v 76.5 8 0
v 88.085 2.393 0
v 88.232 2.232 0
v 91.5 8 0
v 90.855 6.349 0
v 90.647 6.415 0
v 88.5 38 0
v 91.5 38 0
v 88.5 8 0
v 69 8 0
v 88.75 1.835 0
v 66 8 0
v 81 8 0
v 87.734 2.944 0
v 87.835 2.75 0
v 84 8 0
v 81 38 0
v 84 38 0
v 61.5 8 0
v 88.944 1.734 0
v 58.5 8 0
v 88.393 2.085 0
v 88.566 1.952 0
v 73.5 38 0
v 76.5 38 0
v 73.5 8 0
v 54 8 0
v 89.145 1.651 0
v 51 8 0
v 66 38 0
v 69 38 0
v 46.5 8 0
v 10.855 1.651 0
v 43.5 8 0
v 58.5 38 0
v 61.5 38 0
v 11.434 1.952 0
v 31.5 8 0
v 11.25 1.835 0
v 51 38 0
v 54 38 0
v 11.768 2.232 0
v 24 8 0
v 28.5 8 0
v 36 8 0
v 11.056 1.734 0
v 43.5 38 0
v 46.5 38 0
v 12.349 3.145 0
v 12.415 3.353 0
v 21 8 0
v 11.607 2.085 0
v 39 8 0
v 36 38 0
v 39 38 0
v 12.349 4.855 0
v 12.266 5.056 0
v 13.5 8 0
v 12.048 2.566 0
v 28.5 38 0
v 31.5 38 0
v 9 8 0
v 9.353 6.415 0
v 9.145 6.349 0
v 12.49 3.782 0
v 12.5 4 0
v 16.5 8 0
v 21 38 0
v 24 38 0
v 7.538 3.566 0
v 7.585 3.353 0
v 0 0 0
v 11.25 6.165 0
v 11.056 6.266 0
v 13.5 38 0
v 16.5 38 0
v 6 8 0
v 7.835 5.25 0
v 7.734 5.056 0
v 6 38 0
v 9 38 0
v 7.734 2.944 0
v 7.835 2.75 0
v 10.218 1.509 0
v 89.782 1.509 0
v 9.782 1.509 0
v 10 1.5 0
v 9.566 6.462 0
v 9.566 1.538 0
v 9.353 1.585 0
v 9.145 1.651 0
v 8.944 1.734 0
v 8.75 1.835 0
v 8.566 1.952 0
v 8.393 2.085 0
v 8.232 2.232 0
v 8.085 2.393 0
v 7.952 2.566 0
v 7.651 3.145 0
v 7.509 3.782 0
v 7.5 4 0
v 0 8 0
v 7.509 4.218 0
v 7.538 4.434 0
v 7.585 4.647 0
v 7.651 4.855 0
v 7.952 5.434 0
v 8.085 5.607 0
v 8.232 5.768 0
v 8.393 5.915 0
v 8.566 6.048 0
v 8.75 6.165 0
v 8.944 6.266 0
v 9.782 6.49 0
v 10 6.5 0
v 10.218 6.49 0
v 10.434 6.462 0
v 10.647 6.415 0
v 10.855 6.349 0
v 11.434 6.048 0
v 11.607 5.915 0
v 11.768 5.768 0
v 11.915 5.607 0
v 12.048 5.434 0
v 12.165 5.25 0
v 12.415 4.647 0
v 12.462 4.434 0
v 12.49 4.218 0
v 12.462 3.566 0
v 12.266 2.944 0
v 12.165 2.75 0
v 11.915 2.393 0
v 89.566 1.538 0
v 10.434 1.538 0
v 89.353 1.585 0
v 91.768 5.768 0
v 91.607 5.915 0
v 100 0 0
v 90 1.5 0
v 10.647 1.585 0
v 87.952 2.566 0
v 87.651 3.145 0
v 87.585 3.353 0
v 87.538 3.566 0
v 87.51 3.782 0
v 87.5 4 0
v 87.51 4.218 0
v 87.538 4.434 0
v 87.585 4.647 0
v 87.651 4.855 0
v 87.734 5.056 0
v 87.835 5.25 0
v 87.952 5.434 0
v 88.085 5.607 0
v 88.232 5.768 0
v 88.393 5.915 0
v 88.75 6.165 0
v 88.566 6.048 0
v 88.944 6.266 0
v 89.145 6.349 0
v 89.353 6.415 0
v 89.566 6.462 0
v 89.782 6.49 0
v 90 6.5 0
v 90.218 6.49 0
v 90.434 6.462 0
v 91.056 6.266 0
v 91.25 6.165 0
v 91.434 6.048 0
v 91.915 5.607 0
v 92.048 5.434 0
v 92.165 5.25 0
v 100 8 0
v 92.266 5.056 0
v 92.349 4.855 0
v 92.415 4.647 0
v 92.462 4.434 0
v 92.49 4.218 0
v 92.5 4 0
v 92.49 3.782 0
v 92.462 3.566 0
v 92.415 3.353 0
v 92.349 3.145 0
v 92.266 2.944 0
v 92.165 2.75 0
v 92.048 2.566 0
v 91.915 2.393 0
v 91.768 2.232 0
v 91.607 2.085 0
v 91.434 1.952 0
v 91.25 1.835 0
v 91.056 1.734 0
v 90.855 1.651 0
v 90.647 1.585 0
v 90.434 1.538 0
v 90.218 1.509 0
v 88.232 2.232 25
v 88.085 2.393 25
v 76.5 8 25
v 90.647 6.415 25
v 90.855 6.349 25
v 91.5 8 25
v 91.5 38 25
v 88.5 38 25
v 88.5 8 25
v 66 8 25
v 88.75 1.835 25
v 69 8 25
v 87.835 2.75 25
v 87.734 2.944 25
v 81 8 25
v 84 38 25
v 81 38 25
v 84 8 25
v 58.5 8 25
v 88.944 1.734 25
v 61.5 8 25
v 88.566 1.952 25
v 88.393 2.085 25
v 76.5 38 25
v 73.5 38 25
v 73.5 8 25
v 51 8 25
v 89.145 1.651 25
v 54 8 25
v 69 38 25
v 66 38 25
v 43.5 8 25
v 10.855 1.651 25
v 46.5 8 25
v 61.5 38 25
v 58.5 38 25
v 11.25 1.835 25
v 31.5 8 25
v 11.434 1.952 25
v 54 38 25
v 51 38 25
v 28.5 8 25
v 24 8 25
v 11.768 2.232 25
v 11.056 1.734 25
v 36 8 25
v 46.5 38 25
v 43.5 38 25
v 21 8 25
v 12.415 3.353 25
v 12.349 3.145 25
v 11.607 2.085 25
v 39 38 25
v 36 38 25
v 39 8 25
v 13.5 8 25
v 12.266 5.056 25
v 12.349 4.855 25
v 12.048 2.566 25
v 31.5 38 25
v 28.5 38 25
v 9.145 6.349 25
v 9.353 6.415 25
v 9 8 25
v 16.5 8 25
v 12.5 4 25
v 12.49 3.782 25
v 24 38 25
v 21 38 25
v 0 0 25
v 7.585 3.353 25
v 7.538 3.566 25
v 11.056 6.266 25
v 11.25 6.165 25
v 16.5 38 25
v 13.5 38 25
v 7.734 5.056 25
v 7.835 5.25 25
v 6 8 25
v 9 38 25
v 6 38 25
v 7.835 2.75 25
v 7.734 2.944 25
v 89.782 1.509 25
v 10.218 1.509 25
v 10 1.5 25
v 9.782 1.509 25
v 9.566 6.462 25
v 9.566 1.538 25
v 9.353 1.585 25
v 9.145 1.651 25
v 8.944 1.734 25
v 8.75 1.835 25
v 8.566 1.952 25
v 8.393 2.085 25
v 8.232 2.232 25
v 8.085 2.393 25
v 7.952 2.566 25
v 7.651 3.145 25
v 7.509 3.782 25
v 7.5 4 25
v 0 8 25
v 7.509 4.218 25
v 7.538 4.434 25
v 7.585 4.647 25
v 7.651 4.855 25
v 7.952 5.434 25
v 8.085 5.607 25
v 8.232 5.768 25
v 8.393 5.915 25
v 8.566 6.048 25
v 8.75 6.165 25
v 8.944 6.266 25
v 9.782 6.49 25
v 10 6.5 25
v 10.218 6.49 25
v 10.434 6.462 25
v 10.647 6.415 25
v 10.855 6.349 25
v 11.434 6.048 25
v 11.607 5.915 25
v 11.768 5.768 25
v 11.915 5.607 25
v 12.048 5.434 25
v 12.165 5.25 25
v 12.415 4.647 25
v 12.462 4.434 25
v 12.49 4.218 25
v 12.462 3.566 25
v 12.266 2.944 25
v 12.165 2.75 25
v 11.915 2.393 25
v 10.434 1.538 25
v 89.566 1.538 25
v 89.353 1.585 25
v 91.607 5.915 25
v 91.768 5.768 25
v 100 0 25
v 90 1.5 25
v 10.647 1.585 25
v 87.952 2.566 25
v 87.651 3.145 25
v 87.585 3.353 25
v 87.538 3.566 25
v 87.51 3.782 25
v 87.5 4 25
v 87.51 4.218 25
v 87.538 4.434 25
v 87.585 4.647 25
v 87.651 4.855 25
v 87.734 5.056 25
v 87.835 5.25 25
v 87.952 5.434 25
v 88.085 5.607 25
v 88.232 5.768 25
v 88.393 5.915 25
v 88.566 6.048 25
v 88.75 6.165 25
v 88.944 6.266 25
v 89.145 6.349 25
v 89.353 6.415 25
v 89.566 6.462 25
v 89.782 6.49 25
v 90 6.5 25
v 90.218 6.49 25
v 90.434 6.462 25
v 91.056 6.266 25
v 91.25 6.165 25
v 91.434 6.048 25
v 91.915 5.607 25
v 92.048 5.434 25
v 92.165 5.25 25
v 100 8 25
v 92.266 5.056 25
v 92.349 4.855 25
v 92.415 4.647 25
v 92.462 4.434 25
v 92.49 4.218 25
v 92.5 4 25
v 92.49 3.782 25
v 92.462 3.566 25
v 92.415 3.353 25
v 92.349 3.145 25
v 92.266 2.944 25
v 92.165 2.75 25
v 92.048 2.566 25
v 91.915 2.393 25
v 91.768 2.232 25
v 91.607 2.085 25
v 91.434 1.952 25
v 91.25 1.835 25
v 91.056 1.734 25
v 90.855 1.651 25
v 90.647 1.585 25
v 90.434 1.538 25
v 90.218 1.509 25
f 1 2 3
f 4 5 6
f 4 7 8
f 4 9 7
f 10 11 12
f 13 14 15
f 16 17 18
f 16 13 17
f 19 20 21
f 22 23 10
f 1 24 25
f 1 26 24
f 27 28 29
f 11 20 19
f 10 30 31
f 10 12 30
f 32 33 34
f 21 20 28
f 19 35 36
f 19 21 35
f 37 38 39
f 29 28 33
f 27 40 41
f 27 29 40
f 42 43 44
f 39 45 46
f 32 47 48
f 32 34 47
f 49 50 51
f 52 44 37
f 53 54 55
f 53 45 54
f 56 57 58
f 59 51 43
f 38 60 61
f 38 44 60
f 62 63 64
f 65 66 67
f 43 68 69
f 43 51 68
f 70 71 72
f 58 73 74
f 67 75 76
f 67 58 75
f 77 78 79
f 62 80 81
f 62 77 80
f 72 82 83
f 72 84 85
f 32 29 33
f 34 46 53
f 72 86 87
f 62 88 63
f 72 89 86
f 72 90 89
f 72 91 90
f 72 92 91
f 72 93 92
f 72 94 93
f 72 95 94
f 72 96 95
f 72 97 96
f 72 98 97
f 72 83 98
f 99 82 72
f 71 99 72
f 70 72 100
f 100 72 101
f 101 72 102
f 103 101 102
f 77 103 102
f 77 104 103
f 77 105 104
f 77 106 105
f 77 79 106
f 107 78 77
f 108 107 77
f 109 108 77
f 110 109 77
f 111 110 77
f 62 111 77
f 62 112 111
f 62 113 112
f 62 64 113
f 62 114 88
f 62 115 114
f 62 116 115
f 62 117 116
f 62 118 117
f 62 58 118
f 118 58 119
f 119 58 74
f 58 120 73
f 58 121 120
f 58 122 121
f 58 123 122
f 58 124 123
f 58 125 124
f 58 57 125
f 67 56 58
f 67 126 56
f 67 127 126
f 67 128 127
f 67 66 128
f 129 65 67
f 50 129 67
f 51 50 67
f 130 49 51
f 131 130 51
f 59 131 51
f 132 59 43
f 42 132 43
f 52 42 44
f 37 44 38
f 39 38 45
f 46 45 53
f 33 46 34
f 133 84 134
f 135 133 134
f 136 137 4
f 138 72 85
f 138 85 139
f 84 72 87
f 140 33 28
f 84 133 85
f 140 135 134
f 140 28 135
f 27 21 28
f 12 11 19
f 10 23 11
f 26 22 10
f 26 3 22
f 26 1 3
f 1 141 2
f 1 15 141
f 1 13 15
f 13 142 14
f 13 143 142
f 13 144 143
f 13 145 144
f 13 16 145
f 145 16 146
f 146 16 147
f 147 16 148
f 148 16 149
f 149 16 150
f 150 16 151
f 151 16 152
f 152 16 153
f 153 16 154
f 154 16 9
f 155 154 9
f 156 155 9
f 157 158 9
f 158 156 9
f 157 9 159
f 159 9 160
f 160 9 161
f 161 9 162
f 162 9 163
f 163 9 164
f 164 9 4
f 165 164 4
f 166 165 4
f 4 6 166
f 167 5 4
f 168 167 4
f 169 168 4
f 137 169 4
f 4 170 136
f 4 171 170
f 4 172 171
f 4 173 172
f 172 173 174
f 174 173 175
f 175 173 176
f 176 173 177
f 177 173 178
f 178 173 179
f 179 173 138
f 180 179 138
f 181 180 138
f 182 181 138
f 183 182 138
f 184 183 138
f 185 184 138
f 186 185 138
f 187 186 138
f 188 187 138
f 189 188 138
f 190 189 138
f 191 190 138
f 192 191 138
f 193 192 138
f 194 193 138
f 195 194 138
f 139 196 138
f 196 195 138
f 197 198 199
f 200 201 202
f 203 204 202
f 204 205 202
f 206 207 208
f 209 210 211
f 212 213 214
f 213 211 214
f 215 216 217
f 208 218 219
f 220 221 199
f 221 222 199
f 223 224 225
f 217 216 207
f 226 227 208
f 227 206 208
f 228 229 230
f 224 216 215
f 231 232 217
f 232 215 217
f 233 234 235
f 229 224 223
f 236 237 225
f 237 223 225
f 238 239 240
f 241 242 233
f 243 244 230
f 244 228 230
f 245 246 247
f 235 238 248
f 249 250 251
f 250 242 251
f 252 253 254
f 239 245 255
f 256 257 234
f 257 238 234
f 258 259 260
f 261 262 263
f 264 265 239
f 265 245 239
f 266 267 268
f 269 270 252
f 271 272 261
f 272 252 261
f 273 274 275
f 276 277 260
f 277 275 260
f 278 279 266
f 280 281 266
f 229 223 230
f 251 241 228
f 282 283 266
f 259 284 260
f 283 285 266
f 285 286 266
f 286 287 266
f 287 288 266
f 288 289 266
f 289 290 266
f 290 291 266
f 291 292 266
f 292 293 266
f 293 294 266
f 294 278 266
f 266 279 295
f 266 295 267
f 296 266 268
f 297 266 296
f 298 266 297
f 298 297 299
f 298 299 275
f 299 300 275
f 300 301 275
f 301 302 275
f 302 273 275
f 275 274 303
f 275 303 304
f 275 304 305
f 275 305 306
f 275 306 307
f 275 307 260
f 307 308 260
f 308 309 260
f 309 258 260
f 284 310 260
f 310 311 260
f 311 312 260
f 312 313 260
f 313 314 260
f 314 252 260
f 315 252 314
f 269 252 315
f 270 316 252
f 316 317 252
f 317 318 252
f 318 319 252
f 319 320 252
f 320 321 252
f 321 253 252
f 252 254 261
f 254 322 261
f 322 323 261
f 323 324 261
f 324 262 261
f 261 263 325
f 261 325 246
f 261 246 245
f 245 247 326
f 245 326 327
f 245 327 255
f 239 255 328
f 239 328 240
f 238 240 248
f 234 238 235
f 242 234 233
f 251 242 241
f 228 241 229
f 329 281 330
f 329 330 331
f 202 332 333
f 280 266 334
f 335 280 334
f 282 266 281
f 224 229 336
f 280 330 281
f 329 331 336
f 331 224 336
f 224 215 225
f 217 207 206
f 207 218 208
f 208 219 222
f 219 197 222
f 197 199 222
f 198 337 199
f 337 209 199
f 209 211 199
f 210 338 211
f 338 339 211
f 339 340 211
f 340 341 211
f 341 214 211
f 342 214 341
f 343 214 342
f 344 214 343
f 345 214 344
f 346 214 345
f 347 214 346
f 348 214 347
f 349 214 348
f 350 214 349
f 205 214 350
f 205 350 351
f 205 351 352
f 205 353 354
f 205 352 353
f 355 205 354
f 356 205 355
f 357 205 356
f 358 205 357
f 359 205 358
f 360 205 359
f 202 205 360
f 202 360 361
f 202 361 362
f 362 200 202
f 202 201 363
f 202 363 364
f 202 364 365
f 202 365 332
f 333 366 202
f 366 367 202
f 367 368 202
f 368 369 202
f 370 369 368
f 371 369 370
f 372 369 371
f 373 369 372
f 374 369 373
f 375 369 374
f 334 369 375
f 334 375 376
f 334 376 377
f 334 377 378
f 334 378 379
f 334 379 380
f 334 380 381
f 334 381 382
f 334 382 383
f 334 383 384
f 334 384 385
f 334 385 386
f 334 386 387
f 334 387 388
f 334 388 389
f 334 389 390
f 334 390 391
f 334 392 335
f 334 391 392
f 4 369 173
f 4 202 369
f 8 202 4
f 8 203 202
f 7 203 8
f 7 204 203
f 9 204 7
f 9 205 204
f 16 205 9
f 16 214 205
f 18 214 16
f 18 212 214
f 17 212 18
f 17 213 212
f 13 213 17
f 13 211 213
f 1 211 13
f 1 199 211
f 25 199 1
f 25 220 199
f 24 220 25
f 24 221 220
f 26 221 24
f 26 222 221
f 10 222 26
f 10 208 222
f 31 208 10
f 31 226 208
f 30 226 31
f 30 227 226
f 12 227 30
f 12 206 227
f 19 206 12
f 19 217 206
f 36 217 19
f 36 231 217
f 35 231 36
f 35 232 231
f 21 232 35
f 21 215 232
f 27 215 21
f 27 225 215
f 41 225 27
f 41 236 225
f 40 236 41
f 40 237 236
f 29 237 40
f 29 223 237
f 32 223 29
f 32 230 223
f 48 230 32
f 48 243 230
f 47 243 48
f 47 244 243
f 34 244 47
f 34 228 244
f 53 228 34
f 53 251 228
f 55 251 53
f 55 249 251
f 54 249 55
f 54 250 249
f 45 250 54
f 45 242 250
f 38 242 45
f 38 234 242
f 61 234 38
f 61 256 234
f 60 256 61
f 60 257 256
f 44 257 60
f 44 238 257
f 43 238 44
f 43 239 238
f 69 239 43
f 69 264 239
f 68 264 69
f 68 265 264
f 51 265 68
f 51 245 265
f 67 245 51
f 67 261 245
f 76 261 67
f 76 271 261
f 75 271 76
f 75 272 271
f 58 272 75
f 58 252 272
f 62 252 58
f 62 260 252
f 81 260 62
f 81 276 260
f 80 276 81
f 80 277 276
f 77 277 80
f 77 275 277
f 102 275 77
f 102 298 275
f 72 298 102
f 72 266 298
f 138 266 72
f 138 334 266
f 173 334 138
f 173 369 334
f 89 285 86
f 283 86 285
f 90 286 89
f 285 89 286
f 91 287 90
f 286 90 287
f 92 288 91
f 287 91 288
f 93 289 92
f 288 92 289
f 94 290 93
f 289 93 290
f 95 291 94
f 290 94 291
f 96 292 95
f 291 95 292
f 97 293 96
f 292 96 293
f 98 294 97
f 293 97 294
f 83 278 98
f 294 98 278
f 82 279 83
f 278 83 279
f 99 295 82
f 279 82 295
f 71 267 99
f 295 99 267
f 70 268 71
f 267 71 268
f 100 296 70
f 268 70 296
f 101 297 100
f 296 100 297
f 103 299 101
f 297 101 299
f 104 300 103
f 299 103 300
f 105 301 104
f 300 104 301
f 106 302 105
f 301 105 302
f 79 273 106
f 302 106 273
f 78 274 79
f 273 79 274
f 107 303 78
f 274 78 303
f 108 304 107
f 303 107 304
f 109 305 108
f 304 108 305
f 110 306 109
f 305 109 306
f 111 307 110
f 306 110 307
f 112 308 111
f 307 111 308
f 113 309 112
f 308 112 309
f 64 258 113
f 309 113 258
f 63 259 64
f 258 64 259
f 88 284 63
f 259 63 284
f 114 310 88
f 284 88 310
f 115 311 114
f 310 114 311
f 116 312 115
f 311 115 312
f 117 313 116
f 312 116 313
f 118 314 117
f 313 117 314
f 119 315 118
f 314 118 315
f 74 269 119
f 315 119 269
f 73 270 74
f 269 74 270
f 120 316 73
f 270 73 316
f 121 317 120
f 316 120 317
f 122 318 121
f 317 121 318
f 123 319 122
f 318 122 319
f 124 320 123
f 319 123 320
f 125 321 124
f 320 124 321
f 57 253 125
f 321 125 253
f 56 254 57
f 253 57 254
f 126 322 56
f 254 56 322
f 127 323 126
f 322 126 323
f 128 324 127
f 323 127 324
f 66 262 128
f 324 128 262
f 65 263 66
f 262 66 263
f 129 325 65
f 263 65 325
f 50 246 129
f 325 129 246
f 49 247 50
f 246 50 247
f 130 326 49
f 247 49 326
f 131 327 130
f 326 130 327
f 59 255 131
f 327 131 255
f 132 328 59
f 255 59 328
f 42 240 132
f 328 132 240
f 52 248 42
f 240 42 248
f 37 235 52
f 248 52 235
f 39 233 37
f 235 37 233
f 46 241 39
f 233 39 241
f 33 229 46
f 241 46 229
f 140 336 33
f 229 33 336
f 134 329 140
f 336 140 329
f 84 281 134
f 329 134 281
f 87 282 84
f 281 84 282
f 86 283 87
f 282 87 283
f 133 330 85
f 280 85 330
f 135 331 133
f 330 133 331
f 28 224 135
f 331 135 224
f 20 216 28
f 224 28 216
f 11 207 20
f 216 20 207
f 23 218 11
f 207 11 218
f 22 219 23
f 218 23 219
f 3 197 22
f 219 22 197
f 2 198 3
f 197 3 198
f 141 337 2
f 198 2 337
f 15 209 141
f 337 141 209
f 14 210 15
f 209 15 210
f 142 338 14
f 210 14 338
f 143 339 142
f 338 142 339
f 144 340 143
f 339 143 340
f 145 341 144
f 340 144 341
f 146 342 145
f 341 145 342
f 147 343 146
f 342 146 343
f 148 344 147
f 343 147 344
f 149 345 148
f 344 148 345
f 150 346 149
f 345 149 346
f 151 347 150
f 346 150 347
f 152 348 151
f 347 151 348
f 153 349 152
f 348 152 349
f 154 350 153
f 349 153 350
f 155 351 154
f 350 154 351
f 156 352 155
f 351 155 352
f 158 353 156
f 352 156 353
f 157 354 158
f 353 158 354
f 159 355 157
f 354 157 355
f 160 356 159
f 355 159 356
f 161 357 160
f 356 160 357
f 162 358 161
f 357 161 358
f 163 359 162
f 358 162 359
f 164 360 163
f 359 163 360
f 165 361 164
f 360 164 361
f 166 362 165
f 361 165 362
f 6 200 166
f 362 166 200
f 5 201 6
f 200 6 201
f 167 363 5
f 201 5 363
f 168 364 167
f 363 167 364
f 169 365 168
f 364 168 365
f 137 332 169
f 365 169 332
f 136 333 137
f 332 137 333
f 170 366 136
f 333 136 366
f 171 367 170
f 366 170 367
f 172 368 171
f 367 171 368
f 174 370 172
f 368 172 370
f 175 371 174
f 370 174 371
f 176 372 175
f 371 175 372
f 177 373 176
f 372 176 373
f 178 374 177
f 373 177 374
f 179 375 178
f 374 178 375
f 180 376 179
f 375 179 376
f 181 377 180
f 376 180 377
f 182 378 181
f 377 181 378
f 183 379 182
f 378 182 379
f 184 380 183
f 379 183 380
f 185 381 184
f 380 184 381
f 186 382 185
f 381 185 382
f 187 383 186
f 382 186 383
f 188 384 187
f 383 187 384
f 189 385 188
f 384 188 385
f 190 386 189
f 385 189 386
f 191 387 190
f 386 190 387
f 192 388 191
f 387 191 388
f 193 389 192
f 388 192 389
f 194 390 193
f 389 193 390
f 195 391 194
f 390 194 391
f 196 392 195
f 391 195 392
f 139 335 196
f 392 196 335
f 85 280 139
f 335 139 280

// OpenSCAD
// Generated by DXF to 3D (https://github.com) - open in OpenSCAD
depth = 25;
scale_factor = 1;

scale([scale_factor, scale_factor, 1])
union() {
  linear_extrude(height = depth)
    polygon(points = [[0,0],[100,0],[100,8],[91.5,8],[91.5,38],[88.5,38],[88.5,8],[84,8],[84,38],[81,38],[81,8],[76.5,8],[76.5,38],[73.5,38],[73.5,8],[69,8],[69,38],[66,38],[66,8],[61.5,8],[61.5,38],[58.5,38],[58.5,8],[54,8],[54,38],[51,38],[51,8],[46.5,8],[46.5,38],[43.5,38],[43.5,8],[39,8],[39,38],[36,38],[36,8],[31.5,8],[31.5,38],[28.5,38],[28.5,8],[24,8],[24,38],[21,38],[21,8],[16.5,8],[16.5,38],[13.5,38],[13.5,8],[9,8],[9,38],[6,38],[6,8],[0,8],[12.5,4],[12.4905,4.2179],[12.462,4.4341],[12.4148,4.647],[12.3492,4.8551],[12.2658,5.0565],[12.1651,5.25],[12.0479,5.4339],[11.9151,5.607],[11.7678,5.7678],[11.607,5.9151],[11.4339,6.0479],[11.25,6.1651],[11.0565,6.2658],[10.8551,6.3492],[10.647,6.4148],[10.4341,6.462],[10.2179,6.4905],[10,6.5],[9.7821,6.4905],[9.5659,6.462],[9.353,6.4148],[9.1449,6.3492],[8.9435,6.2658],[8.75,6.1651],[8.5661,6.0479],[8.393,5.9151],[8.2322,5.7678],[8.0849,5.607],[7.9521,5.4339],[7.8349,5.25],[7.7342,5.0565],[7.6508,4.8551],[7.5852,4.647],[7.538,4.4341],[7.5095,4.2179],[7.5,4],[7.5095,3.7821],[7.538,3.5659],[7.5852,3.353],[7.6508,3.1449],[7.7342,2.9435],[7.8349,2.75],[7.9521,2.5661],[8.0849,2.393],[8.2322,2.2322],[8.393,2.0849],[8.5661,1.9521],[8.75,1.8349],[8.9435,1.7342],[9.1449,1.6508],[9.353,1.5852],[9.5659,1.538],[9.7821,1.5095],[10,1.5],[10.2179,1.5095],[10.4341,1.538],[10.647,1.5852],[10.8551,1.6508],[11.0565,1.7342],[11.25,1.8349],[11.4339,1.9521],[11.607,2.0849],[11.7678,2.2322],[11.9151,2.393],[12.0479,2.5661],[12.1651,2.75],[12.2658,2.9435],[12.3492,3.1449],[12.4148,3.353],[12.462,3.5659],[12.4905,3.7821],[92.5,4],[92.4905,4.2179],[92.462,4.4341],[92.4148,4.647],[92.3492,4.8551],[92.2658,5.0565],[92.1651,5.25],[92.0479,5.4339],[91.9151,5.607],[91.7678,5.7678],[91.607,5.9151],[91.4339,6.0479],[91.25,6.1651],[91.0565,6.2658],[90.8551,6.3492],[90.647,6.4148],[90.4341,6.462],[90.2179,6.4905],[90,6.5],[89.7821,6.4905],[89.5659,6.462],[89.353,6.4148],[89.1449,6.3492],[88.9435,6.2658],[88.75,6.1651],[88.5661,6.0479],[88.393,5.9151],[88.2322,5.7678],[88.0849,5.607],[87.9521,5.4339],[87.8349,5.25],[87.7342,5.0565],[87.6508,4.8551],[87.5852,4.647],[87.538,4.4341],[87.5095,4.2179],[87.5,4],[87.5095,3.7821],[87.538,3.5659],[87.5852,3.353],[87.6508,3.1449],[87.7342,2.9435],[87.8349,2.75],[87.9521,2.5661],[88.0849,2.393],[88.2322,2.2322],[88.393,2.0849],[88.5661,1.9521],[88.75,1.8349],[88.9435,1.7342],[89.1449,1.6508],[89.353,1.5852],[89.5659,1.538],[89.7821,1.5095],[90,1.5],[90.2179,1.5095],[90.4341,1.538],[90.647,1.5852],[90.8551,1.6508],[91.0565,1.7342],[91.25,1.8349],[91.4339,1.9521],[91.607,2.0849],[91.7678,2.2322],[91.9151,2.393],[92.0479,2.5661],[92.1651,2.75],[92.2658,2.9435],[92.3492,3.1449],[92.4148,3.353],[92.462,3.5659],[92.4905,3.7821]],
      paths = [[0,1,2,3,4,5,6,7,8,9,10,11,12,13,14,15,16,17,18,19,20,21,22,23,24,25,26,27,28,29,30,31,32,33,34,35,36,37,38,39,40,41,42,43,44,45,46,47,48,49,50,51],[52,53,54,55,56,57,58,59,60,61,62,63,64,65,66,67,68,69,70,71,72,73,74,75,76,77,78,79,80,81,82,83,84,85,86,87,88,89,90,91,92,93,94,95,96,97,98,99,100,101,102,103,104,105,106,107,108,109,110,111,112,113,114,115,116,117,118,119,120,121,122,123],[124,125,126,127,128,129,130,131,132,133,134,135,136,137,138,139,140,141,142,143,144,145,146,147,148,149,150,151,152,153,154,155,156,157,158,159,160,161,162,163,164,165,166,167,168,169,170,171,172,173,174,175,176,177,178,179,180,181,182,183,184,185,186,187,188,189,190,191,192,193,194,195]]);
}
